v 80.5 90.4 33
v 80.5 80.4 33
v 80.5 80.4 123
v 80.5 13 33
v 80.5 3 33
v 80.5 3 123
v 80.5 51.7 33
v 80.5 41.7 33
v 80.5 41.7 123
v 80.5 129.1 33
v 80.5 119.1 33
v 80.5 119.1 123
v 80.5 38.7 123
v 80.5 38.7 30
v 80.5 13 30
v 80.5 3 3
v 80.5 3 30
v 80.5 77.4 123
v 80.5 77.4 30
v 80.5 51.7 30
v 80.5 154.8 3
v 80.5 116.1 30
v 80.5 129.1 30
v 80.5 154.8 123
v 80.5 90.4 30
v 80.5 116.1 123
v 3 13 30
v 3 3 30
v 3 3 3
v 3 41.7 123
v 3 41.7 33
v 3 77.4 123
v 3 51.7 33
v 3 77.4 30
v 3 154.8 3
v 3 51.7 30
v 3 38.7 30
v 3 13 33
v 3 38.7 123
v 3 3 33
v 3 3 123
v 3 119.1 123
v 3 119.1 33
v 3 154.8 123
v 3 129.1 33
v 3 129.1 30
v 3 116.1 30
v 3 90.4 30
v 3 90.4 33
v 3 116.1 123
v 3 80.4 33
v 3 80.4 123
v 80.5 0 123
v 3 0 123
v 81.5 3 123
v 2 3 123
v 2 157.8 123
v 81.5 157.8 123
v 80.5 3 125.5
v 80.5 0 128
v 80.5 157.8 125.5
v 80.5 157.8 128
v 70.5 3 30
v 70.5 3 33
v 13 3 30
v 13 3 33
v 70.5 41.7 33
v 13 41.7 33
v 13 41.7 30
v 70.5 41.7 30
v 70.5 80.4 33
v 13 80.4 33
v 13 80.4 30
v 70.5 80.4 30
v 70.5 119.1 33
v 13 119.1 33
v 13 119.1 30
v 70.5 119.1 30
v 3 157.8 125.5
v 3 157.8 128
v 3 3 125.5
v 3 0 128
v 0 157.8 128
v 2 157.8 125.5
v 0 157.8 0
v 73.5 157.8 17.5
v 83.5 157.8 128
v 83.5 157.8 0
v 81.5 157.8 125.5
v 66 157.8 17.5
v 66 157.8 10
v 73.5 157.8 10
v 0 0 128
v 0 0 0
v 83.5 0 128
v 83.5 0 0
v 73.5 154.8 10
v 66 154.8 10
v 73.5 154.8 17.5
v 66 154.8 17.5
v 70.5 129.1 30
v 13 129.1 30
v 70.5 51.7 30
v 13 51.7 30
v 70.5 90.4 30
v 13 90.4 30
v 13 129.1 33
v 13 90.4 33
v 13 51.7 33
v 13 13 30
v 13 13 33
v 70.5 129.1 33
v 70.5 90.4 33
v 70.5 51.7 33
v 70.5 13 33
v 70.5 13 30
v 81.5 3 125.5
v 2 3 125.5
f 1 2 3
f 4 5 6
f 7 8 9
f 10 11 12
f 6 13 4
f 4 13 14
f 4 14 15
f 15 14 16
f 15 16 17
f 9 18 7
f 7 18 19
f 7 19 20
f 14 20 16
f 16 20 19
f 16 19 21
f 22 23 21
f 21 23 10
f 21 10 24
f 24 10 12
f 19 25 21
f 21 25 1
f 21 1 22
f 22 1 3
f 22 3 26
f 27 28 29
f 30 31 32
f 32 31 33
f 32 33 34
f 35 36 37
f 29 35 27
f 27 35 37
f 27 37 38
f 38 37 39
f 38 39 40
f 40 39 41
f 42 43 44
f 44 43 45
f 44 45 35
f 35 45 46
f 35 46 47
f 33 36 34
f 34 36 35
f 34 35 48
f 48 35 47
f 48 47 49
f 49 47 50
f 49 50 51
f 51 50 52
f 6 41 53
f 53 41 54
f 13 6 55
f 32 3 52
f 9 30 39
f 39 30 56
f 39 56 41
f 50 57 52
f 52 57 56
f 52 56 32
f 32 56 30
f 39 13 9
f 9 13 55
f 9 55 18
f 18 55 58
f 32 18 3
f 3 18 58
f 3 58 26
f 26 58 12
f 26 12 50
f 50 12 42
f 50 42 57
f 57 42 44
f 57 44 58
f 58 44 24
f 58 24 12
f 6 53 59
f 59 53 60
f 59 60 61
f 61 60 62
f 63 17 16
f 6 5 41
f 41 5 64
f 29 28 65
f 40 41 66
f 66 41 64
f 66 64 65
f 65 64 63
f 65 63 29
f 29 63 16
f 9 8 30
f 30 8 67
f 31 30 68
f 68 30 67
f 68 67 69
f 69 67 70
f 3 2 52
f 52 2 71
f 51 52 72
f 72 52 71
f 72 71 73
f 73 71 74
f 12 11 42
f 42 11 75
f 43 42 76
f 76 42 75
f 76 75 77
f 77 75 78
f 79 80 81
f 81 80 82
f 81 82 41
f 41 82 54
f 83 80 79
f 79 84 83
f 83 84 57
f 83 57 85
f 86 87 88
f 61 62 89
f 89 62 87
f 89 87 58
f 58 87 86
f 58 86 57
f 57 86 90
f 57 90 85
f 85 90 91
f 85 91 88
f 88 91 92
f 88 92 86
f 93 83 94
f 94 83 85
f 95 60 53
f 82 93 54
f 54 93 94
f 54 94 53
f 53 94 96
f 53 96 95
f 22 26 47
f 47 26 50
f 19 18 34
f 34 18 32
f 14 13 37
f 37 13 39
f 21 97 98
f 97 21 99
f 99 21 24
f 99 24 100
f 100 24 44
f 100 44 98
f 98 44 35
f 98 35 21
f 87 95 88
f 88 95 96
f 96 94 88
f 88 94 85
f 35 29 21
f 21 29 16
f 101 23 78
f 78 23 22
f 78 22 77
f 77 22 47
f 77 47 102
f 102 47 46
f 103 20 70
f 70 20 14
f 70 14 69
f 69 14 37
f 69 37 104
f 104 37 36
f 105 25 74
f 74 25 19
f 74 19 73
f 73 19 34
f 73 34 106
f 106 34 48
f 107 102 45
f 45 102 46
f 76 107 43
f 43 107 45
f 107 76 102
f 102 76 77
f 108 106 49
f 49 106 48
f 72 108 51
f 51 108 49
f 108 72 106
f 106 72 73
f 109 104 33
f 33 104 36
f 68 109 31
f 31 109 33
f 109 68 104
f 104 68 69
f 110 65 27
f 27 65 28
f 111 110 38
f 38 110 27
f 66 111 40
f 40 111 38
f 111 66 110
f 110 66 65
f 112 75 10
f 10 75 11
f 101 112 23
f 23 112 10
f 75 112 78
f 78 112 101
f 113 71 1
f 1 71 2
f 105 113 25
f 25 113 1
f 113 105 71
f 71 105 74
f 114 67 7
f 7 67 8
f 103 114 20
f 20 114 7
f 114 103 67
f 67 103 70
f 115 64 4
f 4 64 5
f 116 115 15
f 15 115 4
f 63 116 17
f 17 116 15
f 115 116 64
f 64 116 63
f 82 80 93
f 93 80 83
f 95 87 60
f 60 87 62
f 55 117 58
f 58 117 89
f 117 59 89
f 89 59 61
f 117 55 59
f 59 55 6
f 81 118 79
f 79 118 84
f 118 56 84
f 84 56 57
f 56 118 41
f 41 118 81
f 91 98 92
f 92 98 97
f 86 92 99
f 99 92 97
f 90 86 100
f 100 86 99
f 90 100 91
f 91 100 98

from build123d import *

# Parameters (mm, degrees)
SKETCH1_W           = 83.5
SKETCH1_H           = 157.8
SKETCH1_W_2         = 77.5
SKETCH1_H_2         = 35.7
BOSS_EXTRUDE1_DEPTH = 123
SKETCH1_3_W         = 77.5
SKETCH1_3_H         = 35.7
BOSS_EXTRUDE2_DEPTH = 3
SKETCH2_W           = 77.5
SKETCH2_H           = 27
CUT_EXTRUDE1_DEPTH  = 100
SKETCH4_W           = 3
SKETCH4_H           = 10
BOSS_EXTRUDE3_DEPTH = 10
SKETCH5_W           = 3
SKETCH5_H           = 10
BOSS_EXTRUDE4_DEPTH = 10
SKETCH7_W           = 3
SKETCH7_H           = 157.8
BOSS_EXTRUDE5_DEPTH = 5
SKETCH8_W           = 1
SKETCH8_H           = 2.5
CUT_EXTRUDE2_DEPTH  = 154.8
SKETCH9_W           = 7.5
SKETCH9_H           = 7.5
CUT_EXTRUDE3_DEPTH  = 10


with BuildPart() as part:
    # Sketch1 → Boss-Extrude1 (new body)
    with BuildSketch(Plane.XY):
        with Locations((41.75, 78.9)):
            Rectangle(SKETCH1_W, SKETCH1_H)
        with Locations((41.75, 20.85)):
            Rectangle(SKETCH1_W_2, SKETCH1_H_2, mode=Mode.SUBTRACT)
        with Locations((41.75, 59.55)):
            Rectangle(SKETCH1_W_2, SKETCH1_H_2, mode=Mode.SUBTRACT)
        with Locations((41.75, 98.25)):
            Rectangle(SKETCH1_W_2, SKETCH1_H_2, mode=Mode.SUBTRACT)
        with Locations((41.75, 136.95)):
            Rectangle(SKETCH1_W_2, SKETCH1_H_2, mode=Mode.SUBTRACT)
    extrude(amount=BOSS_EXTRUDE1_DEPTH)

    # Sketch1<3> → Boss-Extrude2 (add)
    with BuildSketch(Plane.XY):
        with Locations((41.75, 136.95)):
            Rectangle(SKETCH1_3_W, SKETCH1_3_H)
        with Locations((41.75, 98.25)):
            Rectangle(SKETCH1_3_W, SKETCH1_3_H)
        with Locations((41.75, 59.55)):
            Rectangle(SKETCH1_3_W, SKETCH1_3_H)
        with Locations((41.75, 20.85)):
            Rectangle(SKETCH1_3_W, SKETCH1_3_H)
    extrude(amount=BOSS_EXTRUDE2_DEPTH)

    # Sketch2 → Cut-Extrude1 (cut)
    with BuildSketch(Plane(origin=(0, 119.1, 0), x_dir=(1, 0, 0), z_dir=(0, 1, 0))):
        with Locations((41.75, -16.5)):
            Rectangle(SKETCH2_W, SKETCH2_H)
    extrude(amount=-CUT_EXTRUDE1_DEPTH, mode=Mode.SUBTRACT)

    # Sketch4 → Boss-Extrude3 (add)
    with BuildSketch(Plane(origin=(3, 0, 0), x_dir=(0, 0, -1), z_dir=(1, 0, 0))):
        with Locations((-31.5, 85.4)):
            Rectangle(SKETCH4_W, SKETCH4_H)
        with Locations((-31.5, 124.1)):
            Rectangle(SKETCH4_W, SKETCH4_H)
        with Locations((-31.5, 46.7)):
            Rectangle(SKETCH4_W, SKETCH4_H)
        with Locations((-31.5, 8)):
            Rectangle(SKETCH4_W, SKETCH4_H)
    extrude(amount=BOSS_EXTRUDE3_DEPTH)

    # Sketch5 → Boss-Extrude4 (add)
    with BuildSketch(Plane.ZY.offset(-80.5)):
        with Locations((31.5, 85.4)):
            Rectangle(SKETCH5_W, SKETCH5_H)
        with Locations((31.5, 124.1)):
            Rectangle(SKETCH5_W, SKETCH5_H)
        with Locations((31.5, 46.7)):
            Rectangle(SKETCH5_W, SKETCH5_H)
        with Locations((31.5, 8)):
            Rectangle(SKETCH5_W, SKETCH5_H)
    extrude(amount=BOSS_EXTRUDE4_DEPTH)

    # Sketch7 → Boss-Extrude5 (add)
    with BuildSketch(Plane.XY.offset(123)):
        with Locations((1.5, 78.9)):
            Rectangle(SKETCH7_W, SKETCH7_H)
        with Locations((82, 78.9)):
            Rectangle(SKETCH7_W, SKETCH7_H)
    extrude(amount=BOSS_EXTRUDE5_DEPTH)

    # Sketch8 → Cut-Extrude2 (cut)
    with BuildSketch(Plane(origin=(0, 157.8, 0), x_dir=(1, 0, 0), z_dir=(0, 1, 0))):
        with Locations((2.5, -124.25)):
            Rectangle(SKETCH8_W, SKETCH8_H)
        with Locations((81, -124.25)):
            Rectangle(SKETCH8_W, SKETCH8_H)
    extrude(amount=-CUT_EXTRUDE2_DEPTH, mode=Mode.SUBTRACT)

    # Sketch9 → Cut-Extrude3 (cut)
    with BuildSketch(Plane(origin=(0, 157.8, 0), x_dir=(1, 0, 0), z_dir=(0, 1, 0))):
        with Locations((69.75, -13.75)):
            Rectangle(SKETCH9_W, SKETCH9_H)
    extrude(amount=-CUT_EXTRUDE3_DEPTH, mode=Mode.SUBTRACT)


solid = part.part
